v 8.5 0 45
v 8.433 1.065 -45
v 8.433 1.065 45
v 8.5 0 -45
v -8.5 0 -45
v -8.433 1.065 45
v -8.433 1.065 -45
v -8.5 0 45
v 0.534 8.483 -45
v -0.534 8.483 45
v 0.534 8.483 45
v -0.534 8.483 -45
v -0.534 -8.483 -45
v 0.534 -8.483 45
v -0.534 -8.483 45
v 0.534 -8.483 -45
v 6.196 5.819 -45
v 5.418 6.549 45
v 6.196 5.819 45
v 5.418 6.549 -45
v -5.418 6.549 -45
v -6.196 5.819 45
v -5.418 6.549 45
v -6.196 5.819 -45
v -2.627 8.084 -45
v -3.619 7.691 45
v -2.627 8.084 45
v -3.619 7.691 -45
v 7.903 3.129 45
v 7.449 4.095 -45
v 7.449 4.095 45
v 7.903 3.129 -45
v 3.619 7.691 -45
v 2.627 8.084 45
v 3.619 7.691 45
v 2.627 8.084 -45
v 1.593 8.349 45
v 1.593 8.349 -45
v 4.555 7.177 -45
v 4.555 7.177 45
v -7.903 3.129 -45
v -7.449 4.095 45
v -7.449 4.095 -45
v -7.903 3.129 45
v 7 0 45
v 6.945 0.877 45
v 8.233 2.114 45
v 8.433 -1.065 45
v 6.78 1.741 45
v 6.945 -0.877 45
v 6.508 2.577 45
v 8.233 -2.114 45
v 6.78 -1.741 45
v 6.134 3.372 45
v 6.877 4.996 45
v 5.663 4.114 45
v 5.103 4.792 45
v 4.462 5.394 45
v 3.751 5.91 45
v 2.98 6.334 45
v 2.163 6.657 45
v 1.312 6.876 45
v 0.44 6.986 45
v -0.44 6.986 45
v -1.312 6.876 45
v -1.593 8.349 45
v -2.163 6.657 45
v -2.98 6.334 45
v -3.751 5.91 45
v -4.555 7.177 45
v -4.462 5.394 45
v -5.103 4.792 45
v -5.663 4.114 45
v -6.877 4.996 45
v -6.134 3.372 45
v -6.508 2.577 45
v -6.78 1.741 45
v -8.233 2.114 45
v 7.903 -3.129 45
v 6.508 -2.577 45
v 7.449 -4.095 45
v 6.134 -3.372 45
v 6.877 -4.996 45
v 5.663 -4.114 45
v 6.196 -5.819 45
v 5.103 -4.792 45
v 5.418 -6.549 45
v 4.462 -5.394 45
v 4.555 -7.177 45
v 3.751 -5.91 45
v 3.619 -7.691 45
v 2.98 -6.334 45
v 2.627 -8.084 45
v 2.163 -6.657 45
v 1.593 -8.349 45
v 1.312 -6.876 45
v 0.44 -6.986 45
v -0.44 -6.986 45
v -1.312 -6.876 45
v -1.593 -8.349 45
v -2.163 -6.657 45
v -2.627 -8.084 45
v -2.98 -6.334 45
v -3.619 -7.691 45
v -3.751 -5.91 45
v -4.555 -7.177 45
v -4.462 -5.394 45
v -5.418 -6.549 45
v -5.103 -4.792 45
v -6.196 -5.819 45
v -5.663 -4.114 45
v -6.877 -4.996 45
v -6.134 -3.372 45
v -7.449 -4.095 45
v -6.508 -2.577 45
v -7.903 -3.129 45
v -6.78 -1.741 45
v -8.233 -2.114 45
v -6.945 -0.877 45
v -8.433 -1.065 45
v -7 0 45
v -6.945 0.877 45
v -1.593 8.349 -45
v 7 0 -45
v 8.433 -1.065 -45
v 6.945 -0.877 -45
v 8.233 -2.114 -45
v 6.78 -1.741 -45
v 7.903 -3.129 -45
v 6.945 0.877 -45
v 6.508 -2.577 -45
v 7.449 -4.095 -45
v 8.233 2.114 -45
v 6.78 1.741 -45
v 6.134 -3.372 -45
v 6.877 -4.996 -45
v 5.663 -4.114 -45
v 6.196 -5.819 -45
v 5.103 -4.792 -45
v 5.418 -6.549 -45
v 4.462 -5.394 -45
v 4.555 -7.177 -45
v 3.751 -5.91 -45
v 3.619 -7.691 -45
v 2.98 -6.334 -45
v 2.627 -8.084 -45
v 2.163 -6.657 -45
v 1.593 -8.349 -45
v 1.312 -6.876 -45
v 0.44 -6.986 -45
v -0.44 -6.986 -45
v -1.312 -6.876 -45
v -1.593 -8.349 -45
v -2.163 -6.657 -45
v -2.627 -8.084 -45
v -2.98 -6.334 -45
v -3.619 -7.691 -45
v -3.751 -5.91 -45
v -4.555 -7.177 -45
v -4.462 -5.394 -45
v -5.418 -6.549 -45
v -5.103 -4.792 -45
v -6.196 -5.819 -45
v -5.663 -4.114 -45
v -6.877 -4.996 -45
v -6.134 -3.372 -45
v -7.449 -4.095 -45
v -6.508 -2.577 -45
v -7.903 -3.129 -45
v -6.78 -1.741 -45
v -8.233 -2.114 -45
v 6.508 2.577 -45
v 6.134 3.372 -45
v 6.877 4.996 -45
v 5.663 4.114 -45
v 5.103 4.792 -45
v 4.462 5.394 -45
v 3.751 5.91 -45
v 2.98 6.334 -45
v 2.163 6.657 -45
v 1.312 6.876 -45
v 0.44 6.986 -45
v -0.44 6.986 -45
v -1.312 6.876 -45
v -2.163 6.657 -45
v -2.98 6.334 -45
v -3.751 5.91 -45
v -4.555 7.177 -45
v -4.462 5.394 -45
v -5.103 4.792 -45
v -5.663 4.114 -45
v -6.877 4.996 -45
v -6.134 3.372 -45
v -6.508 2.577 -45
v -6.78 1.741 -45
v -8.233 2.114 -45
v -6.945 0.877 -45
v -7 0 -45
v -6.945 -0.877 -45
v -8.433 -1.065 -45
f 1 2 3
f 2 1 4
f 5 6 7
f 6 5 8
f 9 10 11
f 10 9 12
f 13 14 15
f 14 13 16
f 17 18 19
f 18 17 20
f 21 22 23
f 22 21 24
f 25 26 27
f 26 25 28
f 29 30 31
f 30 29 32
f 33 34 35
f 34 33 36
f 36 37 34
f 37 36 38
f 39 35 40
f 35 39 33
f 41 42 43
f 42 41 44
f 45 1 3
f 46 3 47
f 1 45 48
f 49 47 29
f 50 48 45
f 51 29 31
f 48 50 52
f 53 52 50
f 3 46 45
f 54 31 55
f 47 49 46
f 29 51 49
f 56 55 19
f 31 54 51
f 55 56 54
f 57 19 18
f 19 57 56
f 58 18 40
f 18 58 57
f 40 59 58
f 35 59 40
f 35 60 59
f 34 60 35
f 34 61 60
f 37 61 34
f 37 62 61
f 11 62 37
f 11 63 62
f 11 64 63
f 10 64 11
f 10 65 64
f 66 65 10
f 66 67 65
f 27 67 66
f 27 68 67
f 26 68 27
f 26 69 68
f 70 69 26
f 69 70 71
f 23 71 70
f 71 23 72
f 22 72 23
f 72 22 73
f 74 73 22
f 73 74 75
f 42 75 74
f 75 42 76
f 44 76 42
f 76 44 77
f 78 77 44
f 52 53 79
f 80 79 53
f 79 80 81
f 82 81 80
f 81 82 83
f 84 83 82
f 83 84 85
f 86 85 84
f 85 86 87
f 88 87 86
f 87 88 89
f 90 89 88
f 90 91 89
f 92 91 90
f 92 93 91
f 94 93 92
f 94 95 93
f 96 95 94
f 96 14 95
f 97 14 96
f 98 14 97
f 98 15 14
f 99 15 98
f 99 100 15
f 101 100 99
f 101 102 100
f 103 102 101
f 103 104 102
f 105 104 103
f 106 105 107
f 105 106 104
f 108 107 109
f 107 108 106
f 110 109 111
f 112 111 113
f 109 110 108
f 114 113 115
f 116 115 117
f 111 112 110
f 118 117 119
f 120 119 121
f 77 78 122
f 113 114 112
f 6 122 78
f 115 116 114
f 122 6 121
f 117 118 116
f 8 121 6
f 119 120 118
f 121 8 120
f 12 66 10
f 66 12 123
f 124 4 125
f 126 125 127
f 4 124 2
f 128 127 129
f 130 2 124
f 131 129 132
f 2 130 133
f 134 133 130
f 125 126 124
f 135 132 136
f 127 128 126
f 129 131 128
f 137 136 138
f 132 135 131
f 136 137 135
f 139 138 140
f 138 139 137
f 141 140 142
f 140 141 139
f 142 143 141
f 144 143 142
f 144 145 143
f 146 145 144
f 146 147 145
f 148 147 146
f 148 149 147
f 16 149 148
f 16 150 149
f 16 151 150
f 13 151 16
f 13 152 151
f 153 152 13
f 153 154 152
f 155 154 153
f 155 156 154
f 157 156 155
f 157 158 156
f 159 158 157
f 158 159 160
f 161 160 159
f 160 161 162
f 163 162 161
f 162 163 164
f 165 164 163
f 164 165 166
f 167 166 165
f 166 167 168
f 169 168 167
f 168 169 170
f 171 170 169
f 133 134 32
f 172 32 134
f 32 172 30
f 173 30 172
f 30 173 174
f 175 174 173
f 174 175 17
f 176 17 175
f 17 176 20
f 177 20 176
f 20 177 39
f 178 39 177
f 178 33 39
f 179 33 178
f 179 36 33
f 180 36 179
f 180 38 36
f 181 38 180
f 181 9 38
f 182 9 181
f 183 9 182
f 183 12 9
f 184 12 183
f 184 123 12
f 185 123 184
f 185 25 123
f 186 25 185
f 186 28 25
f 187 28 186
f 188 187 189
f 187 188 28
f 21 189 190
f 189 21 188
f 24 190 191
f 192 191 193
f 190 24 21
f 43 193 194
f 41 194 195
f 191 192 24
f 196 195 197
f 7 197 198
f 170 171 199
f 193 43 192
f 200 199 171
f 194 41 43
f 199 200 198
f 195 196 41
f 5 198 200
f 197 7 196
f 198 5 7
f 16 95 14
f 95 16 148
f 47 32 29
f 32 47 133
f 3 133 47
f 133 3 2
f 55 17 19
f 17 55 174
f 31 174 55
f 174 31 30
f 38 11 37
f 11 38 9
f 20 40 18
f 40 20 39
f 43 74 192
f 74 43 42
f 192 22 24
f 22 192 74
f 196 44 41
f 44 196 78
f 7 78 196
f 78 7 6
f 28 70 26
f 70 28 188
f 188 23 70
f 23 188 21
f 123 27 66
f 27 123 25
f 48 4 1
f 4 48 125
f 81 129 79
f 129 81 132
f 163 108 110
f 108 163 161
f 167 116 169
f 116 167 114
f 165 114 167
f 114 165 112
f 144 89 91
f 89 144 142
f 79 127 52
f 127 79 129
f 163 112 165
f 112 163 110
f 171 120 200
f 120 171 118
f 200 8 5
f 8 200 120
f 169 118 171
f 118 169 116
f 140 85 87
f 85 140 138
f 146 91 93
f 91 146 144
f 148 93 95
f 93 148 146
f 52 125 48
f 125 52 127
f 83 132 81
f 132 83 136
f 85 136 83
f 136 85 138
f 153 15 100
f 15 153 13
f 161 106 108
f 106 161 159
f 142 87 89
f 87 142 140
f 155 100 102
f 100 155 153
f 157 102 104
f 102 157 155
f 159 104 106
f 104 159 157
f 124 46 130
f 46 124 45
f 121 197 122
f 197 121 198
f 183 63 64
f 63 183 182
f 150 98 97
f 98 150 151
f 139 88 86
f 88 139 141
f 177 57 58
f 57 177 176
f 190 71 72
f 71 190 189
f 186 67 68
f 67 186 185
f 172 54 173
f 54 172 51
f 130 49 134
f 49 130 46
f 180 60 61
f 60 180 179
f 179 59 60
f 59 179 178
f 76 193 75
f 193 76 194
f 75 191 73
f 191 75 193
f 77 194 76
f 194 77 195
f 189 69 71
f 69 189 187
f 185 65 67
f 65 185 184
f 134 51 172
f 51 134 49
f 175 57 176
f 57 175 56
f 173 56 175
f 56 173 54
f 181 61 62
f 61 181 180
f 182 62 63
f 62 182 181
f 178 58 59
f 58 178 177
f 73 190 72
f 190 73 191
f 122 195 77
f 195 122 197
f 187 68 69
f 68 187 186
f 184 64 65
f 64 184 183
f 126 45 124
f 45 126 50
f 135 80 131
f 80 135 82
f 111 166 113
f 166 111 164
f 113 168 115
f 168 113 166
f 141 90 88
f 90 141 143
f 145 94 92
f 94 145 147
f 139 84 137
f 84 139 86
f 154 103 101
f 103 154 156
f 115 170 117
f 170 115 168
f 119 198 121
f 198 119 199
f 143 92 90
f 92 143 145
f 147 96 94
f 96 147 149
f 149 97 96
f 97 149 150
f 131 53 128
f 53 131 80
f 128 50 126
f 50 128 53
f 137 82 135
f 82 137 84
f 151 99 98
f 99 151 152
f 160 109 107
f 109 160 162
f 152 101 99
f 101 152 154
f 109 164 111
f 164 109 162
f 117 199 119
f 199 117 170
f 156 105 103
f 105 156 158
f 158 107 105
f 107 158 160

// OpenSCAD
$fn = 50;


difference() {
	union() {
		translate(v = [0, 0, -45.0000000000]) {
			cylinder(h = 90, r = 8.5000000000);
		}
	}
	union() {
		translate(v = [0, 0, -100.0000000000]) {
			cylinder(h = 200, r = 7);
		}
	}
}
